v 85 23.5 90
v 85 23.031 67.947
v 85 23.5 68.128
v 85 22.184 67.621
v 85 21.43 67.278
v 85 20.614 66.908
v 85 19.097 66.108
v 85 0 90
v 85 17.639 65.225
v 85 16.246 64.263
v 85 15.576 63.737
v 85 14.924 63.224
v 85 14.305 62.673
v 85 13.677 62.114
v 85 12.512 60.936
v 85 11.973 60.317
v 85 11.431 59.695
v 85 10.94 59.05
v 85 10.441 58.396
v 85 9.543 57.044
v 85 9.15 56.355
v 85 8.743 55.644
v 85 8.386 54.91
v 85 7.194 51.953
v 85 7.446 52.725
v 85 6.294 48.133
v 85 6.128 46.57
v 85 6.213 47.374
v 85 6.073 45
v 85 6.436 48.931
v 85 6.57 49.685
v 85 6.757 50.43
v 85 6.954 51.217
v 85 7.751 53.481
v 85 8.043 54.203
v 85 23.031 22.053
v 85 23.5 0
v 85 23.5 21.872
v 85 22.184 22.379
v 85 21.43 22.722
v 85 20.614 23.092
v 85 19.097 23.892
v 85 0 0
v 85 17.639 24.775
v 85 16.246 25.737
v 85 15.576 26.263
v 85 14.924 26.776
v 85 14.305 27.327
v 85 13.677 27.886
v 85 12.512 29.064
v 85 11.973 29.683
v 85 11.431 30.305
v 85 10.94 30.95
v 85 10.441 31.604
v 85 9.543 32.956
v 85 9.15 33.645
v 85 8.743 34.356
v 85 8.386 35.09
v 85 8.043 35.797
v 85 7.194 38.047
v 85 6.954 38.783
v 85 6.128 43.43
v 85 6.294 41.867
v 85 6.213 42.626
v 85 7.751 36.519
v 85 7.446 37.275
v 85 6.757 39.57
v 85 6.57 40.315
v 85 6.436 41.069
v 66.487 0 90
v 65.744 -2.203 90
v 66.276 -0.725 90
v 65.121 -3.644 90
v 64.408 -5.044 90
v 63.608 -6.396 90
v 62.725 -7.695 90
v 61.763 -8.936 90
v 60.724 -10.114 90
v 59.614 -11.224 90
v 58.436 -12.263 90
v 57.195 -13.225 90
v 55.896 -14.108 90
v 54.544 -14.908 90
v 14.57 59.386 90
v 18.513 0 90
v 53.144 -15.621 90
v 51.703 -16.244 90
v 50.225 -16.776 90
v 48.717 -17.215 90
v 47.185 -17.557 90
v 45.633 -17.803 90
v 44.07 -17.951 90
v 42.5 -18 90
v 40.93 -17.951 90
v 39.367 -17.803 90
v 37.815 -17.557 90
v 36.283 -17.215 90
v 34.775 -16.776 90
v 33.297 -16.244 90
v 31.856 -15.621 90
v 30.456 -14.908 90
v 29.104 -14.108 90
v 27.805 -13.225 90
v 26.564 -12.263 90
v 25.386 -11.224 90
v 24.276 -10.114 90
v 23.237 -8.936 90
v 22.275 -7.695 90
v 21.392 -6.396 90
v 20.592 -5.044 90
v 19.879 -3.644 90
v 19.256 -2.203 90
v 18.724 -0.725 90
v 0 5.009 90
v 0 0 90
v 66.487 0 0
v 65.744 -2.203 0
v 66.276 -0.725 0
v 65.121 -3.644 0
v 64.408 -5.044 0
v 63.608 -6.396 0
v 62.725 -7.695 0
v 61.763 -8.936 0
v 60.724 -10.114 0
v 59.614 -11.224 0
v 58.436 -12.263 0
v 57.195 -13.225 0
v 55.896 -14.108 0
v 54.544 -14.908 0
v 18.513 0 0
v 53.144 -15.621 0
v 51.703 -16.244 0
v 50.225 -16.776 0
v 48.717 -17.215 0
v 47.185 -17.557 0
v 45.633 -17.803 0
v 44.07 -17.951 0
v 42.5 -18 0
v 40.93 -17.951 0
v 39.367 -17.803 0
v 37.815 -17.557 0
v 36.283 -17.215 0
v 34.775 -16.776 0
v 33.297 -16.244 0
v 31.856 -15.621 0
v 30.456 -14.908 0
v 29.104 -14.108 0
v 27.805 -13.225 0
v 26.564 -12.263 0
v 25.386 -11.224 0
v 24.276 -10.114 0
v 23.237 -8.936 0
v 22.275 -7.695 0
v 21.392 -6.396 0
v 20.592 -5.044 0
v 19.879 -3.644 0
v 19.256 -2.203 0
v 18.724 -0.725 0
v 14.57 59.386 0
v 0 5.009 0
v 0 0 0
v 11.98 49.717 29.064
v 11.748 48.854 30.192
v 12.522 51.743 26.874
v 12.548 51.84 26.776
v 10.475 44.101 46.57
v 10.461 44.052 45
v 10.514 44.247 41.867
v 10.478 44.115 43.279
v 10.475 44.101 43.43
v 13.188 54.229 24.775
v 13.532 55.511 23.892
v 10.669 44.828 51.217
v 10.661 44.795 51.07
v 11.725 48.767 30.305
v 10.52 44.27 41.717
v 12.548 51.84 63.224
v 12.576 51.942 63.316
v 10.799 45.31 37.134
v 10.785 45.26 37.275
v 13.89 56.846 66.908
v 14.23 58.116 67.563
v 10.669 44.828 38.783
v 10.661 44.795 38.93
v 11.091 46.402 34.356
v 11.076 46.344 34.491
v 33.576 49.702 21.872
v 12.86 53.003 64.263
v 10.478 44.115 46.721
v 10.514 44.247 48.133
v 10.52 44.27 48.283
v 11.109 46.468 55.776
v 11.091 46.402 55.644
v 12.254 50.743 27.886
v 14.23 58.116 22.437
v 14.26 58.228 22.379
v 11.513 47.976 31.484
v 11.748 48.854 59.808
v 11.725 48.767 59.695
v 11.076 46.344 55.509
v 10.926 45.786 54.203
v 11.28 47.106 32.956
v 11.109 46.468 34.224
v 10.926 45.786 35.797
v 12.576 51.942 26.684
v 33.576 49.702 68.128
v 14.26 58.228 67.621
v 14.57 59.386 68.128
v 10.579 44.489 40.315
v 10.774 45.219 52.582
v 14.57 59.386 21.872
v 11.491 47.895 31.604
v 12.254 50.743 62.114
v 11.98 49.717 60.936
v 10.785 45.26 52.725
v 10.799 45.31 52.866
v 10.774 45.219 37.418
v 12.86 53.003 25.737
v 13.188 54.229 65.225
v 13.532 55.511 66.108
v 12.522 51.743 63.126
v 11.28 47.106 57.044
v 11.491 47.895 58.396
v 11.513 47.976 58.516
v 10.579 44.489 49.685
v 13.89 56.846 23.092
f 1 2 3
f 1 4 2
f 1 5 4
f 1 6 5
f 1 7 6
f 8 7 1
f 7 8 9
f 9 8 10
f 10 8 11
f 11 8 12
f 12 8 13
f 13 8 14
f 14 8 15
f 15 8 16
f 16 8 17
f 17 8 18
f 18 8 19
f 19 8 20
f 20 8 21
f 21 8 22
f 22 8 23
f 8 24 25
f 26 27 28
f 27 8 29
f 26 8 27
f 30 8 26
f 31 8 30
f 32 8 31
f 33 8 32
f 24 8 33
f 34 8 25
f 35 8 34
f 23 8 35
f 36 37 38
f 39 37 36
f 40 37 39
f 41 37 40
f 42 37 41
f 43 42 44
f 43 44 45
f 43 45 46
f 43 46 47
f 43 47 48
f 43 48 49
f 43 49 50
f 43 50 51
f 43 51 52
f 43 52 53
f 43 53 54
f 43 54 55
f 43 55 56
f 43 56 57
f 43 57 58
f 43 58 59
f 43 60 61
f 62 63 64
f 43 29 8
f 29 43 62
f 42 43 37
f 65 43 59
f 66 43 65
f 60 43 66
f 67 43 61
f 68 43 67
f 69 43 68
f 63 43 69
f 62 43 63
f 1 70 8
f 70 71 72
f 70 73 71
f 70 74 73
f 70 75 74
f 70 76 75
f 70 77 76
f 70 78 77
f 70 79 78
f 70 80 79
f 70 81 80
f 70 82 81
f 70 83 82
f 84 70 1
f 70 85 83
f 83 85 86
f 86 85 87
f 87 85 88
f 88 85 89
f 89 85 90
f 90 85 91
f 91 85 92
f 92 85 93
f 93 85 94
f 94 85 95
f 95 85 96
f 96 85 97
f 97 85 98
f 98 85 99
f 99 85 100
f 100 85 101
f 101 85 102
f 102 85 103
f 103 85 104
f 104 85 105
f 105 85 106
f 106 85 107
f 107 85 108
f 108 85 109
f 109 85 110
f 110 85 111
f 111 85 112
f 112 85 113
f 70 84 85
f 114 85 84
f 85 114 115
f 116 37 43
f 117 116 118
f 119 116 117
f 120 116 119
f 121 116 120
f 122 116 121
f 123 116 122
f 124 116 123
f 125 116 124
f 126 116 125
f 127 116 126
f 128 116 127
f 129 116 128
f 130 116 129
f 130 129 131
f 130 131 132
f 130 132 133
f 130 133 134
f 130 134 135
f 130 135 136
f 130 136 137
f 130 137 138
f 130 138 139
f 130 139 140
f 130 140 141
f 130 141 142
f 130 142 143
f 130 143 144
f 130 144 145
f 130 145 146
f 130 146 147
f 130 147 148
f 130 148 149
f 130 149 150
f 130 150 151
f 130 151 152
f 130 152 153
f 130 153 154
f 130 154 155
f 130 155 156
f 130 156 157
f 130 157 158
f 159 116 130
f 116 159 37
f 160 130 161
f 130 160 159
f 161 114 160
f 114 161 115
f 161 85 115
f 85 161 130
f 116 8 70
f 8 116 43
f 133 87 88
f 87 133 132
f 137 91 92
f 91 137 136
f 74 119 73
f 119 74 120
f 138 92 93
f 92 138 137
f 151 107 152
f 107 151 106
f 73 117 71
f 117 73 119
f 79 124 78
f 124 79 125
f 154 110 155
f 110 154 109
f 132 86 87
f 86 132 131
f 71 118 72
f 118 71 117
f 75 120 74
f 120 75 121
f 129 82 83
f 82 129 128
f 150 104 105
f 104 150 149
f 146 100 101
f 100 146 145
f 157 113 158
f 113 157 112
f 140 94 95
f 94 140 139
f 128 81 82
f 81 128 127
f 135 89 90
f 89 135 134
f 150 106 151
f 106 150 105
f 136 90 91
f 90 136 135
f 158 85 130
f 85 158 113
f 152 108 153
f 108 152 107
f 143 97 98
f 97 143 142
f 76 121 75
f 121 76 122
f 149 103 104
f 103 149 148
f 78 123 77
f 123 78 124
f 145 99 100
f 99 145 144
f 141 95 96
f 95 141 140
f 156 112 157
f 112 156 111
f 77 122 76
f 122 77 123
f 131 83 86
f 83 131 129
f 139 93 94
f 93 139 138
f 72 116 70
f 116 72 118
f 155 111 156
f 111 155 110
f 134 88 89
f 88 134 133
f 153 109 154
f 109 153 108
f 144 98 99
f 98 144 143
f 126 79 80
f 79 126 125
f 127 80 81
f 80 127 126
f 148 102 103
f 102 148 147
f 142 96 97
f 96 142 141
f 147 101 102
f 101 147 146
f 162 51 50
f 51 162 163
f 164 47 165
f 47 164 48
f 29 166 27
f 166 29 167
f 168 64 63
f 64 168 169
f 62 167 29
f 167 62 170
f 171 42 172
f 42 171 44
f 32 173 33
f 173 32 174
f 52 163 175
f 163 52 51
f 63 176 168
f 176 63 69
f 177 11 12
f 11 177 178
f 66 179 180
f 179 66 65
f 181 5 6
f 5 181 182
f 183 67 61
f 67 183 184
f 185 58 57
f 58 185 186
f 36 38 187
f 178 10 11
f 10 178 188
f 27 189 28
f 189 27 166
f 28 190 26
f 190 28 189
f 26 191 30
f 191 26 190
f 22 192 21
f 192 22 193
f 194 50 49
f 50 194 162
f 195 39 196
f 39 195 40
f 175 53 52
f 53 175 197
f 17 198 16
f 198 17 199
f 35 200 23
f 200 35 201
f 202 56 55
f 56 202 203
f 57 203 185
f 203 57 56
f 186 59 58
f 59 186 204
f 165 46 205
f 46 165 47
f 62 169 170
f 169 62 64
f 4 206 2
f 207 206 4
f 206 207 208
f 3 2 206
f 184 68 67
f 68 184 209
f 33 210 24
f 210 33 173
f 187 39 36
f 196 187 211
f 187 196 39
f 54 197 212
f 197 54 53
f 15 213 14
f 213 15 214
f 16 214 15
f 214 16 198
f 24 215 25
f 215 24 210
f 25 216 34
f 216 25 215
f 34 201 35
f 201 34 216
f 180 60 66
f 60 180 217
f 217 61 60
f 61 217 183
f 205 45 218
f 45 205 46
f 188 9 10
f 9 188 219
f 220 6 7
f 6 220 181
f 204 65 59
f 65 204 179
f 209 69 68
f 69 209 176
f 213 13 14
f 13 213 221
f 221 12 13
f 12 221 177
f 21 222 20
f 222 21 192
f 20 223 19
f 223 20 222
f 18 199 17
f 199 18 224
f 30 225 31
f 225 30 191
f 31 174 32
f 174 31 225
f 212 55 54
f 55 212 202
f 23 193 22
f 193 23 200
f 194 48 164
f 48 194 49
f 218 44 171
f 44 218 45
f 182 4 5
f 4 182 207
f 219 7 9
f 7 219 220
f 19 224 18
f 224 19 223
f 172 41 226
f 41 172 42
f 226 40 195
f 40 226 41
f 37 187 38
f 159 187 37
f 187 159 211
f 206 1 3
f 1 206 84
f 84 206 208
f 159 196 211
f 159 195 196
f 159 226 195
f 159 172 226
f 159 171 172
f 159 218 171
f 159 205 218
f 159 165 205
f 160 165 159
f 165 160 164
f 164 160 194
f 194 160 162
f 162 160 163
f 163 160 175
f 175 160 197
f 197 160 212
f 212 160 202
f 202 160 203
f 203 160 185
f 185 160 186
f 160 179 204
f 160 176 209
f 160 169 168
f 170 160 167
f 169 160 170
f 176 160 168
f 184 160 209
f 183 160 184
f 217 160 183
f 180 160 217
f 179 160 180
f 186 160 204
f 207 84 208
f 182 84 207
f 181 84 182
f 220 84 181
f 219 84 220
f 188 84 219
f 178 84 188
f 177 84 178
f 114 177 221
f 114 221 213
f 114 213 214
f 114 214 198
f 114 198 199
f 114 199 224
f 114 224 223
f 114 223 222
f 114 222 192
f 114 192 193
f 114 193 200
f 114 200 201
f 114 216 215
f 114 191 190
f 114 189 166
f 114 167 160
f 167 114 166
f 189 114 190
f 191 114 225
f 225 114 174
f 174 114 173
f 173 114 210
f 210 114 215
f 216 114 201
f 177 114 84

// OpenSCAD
$fn = 100;

hoehe = 90;
breite = 85;
rohr_durchmesser = 50;
einrueck_hoch = 7;
abstand = 62;
difference(){
    union(){
        cube([breite,abstand + einrueck_hoch, hoehe]);   
        translate([breite/2, einrueck_hoch, 0]){
            cylinder(hoehe, rohr_durchmesser/2, rohr_durchmesser/2);
            }        
        }
    union(){
        rotate([27, 90, 0]){
            translate([-hoehe/2, abstand + einrueck_hoch, -30]){
                cylinder(200, rohr_durchmesser/2, rohr_durchmesser/2);
            }
        }
        translate([-20, abstand+15, 0]){
            rotate([0, 0, -27]){
                cube([200,100, 100]);
                }
            }
        translate([-195, 50, 0]){
            rotate([0, 0, -15]){
                cube([200,100, 100]);
                }
            }
        }
    }
